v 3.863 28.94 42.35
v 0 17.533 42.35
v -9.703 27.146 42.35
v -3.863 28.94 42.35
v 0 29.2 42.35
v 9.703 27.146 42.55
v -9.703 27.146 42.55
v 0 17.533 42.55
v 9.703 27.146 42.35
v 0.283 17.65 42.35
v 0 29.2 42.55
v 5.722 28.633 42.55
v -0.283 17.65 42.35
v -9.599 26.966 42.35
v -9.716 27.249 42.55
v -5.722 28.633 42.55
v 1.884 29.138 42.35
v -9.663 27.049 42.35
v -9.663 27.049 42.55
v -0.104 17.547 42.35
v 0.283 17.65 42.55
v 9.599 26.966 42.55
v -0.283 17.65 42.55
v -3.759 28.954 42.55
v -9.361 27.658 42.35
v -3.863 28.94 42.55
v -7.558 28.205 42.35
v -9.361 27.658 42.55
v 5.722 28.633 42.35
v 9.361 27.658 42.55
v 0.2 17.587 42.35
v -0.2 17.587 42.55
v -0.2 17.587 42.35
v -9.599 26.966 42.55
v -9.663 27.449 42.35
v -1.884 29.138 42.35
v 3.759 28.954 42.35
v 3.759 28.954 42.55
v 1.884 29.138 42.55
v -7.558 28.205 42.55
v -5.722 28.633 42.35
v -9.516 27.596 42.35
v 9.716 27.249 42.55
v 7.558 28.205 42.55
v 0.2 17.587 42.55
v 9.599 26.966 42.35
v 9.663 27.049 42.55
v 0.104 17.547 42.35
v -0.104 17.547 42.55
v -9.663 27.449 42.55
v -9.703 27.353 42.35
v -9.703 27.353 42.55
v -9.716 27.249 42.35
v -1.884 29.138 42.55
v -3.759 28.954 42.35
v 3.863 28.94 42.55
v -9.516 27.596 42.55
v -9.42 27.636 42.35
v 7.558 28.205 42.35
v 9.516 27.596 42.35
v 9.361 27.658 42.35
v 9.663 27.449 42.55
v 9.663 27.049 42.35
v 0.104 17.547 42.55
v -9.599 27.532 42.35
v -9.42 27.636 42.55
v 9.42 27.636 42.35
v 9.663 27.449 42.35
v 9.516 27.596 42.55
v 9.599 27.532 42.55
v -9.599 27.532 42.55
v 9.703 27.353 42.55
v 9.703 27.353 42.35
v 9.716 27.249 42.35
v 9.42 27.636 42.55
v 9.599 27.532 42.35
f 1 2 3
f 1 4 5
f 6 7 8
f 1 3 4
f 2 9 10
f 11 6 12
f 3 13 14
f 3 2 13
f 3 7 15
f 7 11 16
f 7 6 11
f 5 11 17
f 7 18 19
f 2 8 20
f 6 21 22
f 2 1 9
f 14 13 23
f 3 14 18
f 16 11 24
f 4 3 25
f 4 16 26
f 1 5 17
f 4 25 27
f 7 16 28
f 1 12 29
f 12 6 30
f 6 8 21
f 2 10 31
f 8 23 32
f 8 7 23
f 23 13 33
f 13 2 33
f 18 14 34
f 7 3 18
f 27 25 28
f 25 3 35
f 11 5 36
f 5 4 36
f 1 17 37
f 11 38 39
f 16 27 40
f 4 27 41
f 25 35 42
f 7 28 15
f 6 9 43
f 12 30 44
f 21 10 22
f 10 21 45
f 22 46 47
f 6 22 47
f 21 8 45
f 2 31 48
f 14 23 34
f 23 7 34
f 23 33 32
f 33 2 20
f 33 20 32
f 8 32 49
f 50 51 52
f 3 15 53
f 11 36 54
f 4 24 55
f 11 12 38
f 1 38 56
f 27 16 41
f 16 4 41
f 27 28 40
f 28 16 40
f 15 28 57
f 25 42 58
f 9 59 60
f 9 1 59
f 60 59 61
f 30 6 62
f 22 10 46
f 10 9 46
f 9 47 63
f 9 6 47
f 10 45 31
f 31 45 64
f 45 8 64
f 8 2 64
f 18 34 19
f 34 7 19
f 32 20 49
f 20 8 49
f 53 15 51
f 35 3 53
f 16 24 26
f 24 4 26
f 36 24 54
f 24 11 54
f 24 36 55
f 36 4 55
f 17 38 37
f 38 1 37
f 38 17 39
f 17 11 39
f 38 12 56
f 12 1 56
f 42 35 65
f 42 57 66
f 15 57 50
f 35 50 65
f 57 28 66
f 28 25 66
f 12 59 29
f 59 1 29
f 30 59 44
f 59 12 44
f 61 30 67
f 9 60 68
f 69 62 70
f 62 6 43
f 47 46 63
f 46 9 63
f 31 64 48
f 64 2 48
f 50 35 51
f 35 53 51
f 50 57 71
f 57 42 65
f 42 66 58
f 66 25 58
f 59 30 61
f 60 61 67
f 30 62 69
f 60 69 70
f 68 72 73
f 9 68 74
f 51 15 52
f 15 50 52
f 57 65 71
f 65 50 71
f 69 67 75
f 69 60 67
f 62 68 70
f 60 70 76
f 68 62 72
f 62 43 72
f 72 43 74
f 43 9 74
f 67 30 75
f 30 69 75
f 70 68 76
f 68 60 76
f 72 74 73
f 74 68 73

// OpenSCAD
// file: def.scad
round_radius = 0.6;
sticker_margin = 1.2;
sticker_round_radius = 0.4;
cube_size = 60;
disk_height = 12.5;
disk_radius = cube_size / 2;
base_size = cube_size / 2 / sqrt(10 + 7 * sqrt(2));
cut1_dis = base_size * (1 + sqrt(2) / 2);
cut2_dis = cube_size / 2;
inf = cube_size * 10;

module _cube() {
    cube([cube_size - round_radius * 2, cube_size - round_radius * 2, cube_size - round_radius * 2], center = true);
}

module _disk() {
    translate([0, 0, cube_size / 2 + disk_height / 2])
        cylinder(r = disk_radius - round_radius, h = disk_height - round_radius * 2, center = true, $fn = 96);
}

module _int_cut1() {
    translate([-inf, -inf, cut1_dis + round_radius])
        cube([inf * 2, inf * 2, inf]);
}

module _dif_cut1() {
    translate([-inf, -inf, cut1_dis - round_radius])
        cube([inf * 2, inf * 2, inf]);
}

module _sticker_int_cut1() {
    translate([-inf, -inf, cut1_dis + sticker_margin])
        cube([inf * 2, inf * 2, inf]);
}

module _sticker_dif_cut1() {
    translate([-inf, -inf, cut1_dis - sticker_margin])
        cube([inf * 2, inf * 2, inf]);
}

module _int_cut2() {
    translate([-inf, -inf, cut2_dis + round_radius])
        cube([inf * 2, inf * 2, inf]);
}

module _dif_cut2() {
    translate([-inf, -inf, cut2_dis - round_radius])
        cube([inf * 2, inf * 2, inf]);
}

module _sticker_int_cut2() {
    translate([-inf, -inf, cut2_dis + sticker_margin])
        cube([inf * 2, inf * 2, inf]);
}

module _sticker_dif_cut2() {
    translate([-inf, -inf, cut2_dis - sticker_margin])
        cube([inf * 2, inf * 2, inf]);
}

module _sticker_cube() {
    translate([-cube_size / 2 + sticker_margin, -cube_size / 2 + sticker_margin, cube_size / 2 - 0.05])
        cube([cube_size - sticker_margin * 2, cube_size - sticker_margin * 2, 0.1]);
}

module _sticker_disk() {
    translate([0, 0, cube_size / 2 + disk_height - 0.05])
        cylinder(r = disk_radius - sticker_margin, h = 0.1, center = true, $fn = 96);
}
// main file
include <def.scad>

module sticker_12a() {
    minkowski() {
        difference() {
            intersection() {
                _sticker_disk();
                intersection_for (deg = [45, -45])
                    rotate([-90, 0, deg])
                        _sticker_int_cut1();
            }
        }
        cylinder(r = sticker_round_radius, h = 0.1, center = true, $fn = 24);
    }
}

sticker_12a();
